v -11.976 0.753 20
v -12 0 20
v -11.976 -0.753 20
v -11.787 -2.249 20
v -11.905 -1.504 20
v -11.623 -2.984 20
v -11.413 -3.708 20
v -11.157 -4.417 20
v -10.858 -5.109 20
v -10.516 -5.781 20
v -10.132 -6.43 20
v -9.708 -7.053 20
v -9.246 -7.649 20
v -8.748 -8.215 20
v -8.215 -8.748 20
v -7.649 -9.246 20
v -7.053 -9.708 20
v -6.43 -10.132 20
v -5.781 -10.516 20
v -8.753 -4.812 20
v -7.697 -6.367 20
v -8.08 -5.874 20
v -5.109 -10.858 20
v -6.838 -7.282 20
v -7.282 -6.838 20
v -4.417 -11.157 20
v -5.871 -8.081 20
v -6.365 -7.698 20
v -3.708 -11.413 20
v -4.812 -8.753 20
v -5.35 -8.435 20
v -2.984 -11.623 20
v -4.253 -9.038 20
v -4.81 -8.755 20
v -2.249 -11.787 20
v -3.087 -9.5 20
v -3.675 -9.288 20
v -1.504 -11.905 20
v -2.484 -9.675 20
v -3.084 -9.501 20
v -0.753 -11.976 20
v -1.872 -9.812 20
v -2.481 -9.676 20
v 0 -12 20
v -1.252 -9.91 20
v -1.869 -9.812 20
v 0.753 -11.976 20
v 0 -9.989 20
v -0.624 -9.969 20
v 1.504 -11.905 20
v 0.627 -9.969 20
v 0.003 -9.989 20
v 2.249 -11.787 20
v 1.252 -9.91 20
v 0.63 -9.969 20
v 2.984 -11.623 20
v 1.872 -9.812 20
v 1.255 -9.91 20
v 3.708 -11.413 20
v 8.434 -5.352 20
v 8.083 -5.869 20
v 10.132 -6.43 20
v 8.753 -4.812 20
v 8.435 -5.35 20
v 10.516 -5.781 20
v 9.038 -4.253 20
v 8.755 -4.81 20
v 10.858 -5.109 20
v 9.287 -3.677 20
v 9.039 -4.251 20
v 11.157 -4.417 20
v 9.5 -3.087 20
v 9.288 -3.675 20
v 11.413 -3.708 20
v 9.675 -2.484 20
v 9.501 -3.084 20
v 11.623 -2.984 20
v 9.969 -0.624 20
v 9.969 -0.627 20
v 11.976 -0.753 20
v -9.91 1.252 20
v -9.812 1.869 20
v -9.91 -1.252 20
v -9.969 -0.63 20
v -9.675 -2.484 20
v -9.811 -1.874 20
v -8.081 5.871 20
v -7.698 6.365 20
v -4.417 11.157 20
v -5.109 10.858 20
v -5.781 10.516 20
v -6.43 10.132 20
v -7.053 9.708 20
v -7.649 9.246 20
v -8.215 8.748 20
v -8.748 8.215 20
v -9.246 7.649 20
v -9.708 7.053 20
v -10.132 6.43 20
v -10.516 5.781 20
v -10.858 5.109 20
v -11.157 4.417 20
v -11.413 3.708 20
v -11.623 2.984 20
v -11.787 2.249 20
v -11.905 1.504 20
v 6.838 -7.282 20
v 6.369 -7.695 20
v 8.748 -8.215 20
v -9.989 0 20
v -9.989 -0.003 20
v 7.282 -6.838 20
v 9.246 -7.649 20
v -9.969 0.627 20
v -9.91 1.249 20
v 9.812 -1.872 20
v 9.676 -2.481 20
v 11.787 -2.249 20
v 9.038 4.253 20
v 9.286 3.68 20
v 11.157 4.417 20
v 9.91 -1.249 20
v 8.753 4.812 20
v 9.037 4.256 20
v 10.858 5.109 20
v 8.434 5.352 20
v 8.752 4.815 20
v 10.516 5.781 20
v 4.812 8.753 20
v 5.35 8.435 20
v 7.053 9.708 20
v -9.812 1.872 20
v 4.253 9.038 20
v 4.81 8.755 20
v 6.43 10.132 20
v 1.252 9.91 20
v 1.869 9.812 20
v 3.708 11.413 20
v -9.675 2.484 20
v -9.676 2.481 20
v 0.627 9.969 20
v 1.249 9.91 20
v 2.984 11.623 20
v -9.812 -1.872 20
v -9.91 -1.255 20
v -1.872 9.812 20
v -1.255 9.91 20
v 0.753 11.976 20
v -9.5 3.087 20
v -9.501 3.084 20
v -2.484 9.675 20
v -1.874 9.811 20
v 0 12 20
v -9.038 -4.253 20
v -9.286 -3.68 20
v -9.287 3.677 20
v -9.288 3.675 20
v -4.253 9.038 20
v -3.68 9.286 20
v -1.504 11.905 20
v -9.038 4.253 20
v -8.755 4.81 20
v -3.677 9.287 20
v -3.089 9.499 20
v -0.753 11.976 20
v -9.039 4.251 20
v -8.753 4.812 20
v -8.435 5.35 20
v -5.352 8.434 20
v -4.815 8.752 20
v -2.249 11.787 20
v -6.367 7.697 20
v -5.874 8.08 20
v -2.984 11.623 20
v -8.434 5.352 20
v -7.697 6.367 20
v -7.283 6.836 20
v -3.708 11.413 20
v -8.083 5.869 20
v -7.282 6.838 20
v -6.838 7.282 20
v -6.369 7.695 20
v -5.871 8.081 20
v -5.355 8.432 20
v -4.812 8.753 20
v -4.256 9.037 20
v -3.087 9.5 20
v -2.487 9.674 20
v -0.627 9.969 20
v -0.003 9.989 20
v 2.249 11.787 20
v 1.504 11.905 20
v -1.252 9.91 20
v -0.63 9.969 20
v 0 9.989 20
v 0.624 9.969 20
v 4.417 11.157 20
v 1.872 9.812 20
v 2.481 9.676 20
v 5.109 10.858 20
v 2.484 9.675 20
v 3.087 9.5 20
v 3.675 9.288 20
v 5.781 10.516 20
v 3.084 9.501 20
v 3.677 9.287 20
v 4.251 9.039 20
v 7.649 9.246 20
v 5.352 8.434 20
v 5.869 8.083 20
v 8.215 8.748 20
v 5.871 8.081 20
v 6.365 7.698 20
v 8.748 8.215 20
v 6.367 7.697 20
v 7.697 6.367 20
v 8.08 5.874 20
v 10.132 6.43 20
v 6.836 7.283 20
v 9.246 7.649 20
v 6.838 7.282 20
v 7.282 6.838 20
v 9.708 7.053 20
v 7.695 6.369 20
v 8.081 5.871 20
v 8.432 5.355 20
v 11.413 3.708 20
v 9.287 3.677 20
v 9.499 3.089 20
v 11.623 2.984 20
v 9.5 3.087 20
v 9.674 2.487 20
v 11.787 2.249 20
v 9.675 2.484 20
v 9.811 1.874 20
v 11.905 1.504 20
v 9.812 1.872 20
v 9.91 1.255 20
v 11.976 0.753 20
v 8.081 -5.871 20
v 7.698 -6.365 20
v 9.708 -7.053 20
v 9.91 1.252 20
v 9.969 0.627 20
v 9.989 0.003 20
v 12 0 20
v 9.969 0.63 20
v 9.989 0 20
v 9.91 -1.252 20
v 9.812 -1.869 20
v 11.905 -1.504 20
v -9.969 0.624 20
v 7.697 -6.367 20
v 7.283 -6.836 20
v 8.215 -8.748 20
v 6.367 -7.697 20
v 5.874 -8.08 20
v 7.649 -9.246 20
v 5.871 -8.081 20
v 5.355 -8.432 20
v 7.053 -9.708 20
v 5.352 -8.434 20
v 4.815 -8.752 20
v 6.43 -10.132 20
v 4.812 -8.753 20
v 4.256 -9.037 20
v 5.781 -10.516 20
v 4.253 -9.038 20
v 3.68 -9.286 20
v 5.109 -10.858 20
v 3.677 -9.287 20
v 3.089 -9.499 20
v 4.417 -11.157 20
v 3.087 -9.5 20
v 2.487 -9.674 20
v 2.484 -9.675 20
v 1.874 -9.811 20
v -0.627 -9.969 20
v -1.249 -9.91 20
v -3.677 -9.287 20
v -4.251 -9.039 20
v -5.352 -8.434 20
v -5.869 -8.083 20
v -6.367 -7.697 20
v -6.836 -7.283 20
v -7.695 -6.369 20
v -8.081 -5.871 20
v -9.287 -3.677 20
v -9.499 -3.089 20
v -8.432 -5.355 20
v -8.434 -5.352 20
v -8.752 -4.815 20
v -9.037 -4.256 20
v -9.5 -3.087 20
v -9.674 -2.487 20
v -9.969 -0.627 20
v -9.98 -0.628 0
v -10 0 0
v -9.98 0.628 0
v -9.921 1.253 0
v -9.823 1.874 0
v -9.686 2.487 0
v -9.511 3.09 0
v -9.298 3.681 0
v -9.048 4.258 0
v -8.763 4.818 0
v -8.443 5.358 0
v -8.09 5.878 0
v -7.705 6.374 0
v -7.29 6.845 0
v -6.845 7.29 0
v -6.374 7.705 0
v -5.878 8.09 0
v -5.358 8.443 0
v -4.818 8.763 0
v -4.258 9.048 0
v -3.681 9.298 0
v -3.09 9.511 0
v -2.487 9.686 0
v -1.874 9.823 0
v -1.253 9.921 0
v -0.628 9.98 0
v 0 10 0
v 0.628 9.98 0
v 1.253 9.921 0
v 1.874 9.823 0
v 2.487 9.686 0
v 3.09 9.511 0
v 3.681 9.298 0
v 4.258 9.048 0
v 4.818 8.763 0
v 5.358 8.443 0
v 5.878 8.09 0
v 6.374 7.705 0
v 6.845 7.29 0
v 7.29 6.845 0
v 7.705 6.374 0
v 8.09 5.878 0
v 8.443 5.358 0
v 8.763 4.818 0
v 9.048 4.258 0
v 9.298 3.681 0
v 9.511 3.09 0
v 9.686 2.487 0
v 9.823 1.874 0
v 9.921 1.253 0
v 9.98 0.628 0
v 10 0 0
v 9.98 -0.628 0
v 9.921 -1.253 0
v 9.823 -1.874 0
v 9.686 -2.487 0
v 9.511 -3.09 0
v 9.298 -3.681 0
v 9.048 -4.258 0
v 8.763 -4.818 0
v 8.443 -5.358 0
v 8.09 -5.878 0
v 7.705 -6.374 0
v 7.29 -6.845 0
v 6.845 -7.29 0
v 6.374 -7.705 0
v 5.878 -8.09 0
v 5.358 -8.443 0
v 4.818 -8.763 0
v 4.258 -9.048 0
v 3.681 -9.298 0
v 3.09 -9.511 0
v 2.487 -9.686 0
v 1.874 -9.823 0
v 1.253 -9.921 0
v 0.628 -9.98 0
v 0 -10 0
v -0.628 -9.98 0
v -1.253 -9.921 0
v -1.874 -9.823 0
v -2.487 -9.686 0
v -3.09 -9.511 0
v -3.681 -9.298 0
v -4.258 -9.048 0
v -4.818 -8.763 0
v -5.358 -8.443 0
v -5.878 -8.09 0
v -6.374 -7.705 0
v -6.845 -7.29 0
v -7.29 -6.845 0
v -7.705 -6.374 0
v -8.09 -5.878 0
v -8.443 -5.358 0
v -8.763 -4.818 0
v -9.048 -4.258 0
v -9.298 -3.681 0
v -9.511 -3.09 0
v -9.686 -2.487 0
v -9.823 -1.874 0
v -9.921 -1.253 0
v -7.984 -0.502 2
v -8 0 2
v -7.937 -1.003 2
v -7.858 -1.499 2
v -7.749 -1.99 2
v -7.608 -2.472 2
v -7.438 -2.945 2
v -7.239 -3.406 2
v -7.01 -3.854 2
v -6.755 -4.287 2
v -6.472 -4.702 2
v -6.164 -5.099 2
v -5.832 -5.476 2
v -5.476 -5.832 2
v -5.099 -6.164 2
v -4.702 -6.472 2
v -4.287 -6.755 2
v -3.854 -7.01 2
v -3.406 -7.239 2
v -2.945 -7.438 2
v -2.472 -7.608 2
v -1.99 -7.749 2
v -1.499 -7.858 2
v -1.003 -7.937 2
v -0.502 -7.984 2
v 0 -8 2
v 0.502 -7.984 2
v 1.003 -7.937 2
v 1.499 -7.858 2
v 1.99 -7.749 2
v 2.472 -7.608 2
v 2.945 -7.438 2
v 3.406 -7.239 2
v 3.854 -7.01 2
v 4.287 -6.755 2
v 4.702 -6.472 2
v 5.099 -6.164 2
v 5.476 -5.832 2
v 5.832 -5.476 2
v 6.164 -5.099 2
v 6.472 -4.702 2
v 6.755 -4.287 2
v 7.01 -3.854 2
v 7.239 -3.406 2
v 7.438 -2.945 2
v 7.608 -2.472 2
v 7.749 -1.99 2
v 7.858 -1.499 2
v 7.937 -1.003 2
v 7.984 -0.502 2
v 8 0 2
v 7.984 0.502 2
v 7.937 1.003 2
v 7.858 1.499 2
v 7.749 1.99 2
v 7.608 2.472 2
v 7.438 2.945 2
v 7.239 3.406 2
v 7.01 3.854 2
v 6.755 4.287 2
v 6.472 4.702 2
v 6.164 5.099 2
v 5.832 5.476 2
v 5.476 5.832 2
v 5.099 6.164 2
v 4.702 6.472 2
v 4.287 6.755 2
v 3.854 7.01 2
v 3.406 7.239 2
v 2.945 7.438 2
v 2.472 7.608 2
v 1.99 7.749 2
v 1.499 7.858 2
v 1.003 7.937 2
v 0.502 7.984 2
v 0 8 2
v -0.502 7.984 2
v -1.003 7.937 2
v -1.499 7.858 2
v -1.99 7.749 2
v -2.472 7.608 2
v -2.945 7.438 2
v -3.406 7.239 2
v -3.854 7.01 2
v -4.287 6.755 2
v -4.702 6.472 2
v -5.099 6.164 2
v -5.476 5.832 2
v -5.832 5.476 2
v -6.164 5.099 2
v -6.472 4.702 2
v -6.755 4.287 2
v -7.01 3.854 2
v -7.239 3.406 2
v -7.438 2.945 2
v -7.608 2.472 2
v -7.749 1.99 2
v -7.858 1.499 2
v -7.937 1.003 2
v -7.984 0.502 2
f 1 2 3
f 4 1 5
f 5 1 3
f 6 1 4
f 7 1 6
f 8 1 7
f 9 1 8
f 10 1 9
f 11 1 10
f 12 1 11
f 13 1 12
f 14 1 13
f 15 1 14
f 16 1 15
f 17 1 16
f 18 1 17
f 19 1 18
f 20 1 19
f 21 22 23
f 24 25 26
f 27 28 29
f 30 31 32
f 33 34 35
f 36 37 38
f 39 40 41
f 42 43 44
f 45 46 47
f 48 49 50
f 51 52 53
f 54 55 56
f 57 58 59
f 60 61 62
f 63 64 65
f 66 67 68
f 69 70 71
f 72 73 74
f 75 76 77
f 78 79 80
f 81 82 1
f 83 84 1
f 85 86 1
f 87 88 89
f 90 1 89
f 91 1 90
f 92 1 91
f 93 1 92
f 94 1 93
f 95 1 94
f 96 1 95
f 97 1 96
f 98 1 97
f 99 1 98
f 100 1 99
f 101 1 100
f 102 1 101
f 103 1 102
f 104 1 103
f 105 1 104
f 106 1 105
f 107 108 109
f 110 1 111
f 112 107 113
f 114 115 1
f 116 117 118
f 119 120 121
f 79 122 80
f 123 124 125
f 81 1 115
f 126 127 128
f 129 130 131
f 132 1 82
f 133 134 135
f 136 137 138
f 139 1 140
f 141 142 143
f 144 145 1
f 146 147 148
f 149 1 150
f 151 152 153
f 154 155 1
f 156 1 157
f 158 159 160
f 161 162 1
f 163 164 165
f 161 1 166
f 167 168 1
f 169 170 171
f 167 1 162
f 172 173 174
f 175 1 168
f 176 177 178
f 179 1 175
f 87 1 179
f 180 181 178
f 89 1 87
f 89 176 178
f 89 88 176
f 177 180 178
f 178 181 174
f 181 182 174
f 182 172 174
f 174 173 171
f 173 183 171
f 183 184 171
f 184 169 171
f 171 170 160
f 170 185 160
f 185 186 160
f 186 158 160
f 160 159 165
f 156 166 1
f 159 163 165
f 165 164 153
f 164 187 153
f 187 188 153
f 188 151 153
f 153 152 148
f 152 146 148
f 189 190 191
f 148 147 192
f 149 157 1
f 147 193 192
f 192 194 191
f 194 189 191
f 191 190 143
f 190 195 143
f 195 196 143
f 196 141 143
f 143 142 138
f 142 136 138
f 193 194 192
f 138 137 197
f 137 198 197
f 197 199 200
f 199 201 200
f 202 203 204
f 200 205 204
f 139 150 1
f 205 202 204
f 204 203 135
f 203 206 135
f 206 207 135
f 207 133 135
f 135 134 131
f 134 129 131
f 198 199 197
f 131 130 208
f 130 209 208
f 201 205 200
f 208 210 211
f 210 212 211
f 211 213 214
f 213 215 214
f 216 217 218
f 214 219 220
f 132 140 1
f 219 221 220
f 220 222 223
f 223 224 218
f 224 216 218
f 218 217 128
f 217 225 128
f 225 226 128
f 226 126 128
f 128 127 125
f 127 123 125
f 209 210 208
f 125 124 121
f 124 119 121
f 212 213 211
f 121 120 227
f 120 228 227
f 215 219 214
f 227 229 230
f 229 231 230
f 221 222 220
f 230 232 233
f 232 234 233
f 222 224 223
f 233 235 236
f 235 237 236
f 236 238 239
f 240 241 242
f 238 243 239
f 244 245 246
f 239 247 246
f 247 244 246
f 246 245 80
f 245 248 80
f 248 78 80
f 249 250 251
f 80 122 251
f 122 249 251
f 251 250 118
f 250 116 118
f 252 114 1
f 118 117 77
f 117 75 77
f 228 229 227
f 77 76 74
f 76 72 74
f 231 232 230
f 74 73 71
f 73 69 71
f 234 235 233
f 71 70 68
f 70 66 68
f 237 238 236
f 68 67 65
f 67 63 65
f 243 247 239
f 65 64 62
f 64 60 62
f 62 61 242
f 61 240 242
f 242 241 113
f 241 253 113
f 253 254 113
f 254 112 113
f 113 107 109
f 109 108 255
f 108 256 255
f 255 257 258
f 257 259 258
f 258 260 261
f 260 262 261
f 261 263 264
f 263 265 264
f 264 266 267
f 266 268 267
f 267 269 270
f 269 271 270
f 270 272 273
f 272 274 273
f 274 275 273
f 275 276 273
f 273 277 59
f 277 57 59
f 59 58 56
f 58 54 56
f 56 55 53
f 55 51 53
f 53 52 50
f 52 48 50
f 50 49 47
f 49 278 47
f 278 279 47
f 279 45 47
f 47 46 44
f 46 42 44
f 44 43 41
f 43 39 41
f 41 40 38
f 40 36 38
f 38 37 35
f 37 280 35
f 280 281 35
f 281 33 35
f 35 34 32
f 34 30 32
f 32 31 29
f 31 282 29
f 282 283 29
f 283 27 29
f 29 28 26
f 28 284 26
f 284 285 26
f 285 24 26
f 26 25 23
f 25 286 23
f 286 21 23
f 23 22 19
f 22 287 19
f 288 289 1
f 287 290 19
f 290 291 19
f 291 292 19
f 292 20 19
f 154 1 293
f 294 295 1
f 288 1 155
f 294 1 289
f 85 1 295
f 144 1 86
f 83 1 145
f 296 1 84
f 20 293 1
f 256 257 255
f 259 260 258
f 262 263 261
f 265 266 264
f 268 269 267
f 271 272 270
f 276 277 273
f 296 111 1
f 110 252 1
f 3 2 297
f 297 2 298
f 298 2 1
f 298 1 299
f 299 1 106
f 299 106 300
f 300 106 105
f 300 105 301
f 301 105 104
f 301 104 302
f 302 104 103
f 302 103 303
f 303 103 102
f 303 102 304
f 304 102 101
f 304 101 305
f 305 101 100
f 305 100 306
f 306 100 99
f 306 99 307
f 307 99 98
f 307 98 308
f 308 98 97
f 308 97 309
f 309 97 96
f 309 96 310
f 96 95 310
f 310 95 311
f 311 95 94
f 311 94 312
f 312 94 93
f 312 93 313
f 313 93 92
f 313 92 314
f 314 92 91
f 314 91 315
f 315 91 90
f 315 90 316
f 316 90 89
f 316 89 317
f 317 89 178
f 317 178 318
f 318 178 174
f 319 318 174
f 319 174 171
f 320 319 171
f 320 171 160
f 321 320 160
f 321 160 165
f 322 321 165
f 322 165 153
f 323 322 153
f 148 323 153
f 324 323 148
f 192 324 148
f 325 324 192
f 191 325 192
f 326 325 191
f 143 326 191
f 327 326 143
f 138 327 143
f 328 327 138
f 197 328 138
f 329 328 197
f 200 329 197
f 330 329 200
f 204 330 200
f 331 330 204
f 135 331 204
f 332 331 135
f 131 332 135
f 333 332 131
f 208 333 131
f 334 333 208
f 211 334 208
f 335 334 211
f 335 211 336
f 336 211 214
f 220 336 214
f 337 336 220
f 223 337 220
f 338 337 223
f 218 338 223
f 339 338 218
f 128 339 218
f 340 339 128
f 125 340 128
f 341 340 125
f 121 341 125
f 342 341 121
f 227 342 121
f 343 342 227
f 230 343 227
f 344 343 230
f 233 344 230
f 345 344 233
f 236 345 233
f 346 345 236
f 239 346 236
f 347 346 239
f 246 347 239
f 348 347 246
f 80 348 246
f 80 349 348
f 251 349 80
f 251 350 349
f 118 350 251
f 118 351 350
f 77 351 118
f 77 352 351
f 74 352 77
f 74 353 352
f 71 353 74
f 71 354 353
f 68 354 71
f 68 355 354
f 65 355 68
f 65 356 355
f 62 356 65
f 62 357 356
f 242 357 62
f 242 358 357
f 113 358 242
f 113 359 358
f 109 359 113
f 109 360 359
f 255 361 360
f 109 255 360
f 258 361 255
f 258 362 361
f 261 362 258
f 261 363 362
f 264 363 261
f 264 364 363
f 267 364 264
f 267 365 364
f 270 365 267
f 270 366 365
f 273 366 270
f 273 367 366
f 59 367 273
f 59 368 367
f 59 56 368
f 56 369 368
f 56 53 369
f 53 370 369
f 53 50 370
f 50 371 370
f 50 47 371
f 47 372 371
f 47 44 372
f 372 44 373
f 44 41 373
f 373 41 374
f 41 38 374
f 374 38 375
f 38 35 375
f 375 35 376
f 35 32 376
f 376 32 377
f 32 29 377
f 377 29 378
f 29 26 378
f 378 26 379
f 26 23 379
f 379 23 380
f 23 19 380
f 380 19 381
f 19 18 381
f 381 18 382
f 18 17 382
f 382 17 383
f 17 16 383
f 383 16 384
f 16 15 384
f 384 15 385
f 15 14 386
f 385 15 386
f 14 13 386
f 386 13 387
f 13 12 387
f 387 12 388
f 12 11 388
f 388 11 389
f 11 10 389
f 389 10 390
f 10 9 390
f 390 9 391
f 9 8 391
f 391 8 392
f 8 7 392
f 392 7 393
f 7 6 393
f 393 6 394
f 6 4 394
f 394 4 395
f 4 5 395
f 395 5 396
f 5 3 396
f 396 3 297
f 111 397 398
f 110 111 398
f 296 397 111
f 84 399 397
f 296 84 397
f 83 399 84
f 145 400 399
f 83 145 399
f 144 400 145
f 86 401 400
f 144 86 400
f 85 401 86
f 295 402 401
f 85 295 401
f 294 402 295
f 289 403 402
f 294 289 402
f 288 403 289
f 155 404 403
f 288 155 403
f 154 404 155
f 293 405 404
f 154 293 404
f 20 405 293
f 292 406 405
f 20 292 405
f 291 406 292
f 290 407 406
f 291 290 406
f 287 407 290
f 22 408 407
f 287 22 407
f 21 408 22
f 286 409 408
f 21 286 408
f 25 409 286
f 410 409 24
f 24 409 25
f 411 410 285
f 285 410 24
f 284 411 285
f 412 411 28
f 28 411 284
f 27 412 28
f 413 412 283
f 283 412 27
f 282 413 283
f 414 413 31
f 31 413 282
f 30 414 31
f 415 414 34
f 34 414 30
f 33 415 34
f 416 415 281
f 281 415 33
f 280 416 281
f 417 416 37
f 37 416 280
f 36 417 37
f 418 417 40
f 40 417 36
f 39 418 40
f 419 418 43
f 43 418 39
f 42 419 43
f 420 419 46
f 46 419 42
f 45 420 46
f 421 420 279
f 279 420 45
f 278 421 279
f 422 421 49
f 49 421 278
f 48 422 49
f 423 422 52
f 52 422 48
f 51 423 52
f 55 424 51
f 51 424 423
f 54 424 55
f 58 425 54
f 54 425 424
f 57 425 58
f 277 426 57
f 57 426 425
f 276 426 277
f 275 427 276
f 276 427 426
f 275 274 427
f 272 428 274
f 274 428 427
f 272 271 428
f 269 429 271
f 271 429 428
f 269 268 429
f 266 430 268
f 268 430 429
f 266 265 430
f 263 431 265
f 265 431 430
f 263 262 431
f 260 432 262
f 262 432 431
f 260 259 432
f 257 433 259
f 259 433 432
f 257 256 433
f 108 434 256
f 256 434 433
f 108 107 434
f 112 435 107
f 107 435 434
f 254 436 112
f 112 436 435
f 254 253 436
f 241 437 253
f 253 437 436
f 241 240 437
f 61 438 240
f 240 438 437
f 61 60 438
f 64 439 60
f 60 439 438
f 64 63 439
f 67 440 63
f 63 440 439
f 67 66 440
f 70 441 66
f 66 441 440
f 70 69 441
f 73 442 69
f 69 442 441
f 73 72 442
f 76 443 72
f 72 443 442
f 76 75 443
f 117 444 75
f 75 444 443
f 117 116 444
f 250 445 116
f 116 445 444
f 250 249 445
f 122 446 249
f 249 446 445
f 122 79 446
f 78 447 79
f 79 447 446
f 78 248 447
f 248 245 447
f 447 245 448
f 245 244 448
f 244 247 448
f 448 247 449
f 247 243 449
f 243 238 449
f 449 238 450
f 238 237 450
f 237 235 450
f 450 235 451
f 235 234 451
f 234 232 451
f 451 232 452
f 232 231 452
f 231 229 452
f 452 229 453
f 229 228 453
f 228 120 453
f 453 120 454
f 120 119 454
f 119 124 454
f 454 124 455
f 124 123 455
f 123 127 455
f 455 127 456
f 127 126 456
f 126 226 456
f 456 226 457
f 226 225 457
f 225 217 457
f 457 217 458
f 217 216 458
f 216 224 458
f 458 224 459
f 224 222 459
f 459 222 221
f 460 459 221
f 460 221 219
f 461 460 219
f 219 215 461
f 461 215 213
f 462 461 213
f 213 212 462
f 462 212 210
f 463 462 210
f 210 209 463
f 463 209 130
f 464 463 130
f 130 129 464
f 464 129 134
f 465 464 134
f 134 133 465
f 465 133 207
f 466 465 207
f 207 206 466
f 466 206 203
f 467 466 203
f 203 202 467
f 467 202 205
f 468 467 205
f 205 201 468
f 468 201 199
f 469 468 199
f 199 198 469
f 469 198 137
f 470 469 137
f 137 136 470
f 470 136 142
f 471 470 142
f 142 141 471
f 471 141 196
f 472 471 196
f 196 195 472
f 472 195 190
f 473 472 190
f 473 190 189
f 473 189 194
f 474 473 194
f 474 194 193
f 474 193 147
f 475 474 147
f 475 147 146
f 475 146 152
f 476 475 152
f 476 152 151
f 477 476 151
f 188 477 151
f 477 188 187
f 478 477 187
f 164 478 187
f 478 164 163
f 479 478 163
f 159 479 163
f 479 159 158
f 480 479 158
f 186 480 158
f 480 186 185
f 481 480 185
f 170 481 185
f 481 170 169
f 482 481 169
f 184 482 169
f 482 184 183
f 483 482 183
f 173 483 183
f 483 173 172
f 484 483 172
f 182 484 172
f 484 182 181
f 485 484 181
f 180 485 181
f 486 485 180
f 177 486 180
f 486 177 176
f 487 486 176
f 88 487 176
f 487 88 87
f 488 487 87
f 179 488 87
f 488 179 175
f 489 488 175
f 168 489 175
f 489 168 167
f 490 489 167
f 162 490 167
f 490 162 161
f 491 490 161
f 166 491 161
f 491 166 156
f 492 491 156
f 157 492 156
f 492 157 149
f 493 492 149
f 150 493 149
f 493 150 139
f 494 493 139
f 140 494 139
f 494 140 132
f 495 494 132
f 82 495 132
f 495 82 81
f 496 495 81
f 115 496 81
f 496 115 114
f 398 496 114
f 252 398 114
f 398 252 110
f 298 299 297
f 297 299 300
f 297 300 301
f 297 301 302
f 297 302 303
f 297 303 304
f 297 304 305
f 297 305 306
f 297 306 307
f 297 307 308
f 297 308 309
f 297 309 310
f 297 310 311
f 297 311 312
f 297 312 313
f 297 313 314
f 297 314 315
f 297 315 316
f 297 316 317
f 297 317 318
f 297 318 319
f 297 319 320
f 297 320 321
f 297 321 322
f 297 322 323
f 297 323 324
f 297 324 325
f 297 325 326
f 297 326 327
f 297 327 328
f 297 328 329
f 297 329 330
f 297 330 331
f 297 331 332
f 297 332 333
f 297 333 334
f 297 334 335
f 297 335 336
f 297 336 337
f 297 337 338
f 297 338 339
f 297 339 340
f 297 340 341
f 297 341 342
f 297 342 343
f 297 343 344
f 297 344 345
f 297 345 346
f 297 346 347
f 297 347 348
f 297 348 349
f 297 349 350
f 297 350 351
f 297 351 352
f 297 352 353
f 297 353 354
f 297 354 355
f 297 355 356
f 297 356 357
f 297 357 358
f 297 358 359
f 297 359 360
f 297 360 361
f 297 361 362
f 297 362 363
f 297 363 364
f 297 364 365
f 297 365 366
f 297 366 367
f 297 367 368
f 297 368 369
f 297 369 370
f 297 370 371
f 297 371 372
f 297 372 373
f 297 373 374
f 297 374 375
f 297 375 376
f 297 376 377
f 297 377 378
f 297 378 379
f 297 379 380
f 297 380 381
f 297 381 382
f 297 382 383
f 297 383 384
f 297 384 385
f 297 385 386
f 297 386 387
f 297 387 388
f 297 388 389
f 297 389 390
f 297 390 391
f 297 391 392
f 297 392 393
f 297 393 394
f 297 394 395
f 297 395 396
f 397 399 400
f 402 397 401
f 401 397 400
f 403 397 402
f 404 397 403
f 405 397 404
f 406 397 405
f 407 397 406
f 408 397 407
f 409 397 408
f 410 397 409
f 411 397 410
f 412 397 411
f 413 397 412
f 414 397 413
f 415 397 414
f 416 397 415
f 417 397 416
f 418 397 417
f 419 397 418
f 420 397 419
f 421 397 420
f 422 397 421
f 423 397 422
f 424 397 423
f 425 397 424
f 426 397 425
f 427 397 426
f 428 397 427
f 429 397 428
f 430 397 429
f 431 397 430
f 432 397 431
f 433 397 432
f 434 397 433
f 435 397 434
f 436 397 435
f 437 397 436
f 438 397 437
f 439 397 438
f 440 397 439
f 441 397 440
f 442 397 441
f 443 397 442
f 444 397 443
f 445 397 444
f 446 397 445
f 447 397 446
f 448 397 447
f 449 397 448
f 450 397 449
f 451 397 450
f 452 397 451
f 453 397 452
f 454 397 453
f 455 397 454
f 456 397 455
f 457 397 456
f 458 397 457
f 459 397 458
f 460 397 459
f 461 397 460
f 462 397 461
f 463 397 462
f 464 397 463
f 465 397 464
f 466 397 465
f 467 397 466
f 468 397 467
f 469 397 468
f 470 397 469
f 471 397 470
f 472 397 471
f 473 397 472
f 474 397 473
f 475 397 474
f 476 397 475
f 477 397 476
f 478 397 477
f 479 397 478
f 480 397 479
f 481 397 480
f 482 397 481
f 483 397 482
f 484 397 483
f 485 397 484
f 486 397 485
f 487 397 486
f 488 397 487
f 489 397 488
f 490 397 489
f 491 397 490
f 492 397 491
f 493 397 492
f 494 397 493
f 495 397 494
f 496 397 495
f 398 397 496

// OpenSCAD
$fn=100;

difference() {
	cylinder(r1=10, r2=12, h=20);
	translate([0,0,2])
		cylinder(r1=8, r2=10, h=18.1);
}
